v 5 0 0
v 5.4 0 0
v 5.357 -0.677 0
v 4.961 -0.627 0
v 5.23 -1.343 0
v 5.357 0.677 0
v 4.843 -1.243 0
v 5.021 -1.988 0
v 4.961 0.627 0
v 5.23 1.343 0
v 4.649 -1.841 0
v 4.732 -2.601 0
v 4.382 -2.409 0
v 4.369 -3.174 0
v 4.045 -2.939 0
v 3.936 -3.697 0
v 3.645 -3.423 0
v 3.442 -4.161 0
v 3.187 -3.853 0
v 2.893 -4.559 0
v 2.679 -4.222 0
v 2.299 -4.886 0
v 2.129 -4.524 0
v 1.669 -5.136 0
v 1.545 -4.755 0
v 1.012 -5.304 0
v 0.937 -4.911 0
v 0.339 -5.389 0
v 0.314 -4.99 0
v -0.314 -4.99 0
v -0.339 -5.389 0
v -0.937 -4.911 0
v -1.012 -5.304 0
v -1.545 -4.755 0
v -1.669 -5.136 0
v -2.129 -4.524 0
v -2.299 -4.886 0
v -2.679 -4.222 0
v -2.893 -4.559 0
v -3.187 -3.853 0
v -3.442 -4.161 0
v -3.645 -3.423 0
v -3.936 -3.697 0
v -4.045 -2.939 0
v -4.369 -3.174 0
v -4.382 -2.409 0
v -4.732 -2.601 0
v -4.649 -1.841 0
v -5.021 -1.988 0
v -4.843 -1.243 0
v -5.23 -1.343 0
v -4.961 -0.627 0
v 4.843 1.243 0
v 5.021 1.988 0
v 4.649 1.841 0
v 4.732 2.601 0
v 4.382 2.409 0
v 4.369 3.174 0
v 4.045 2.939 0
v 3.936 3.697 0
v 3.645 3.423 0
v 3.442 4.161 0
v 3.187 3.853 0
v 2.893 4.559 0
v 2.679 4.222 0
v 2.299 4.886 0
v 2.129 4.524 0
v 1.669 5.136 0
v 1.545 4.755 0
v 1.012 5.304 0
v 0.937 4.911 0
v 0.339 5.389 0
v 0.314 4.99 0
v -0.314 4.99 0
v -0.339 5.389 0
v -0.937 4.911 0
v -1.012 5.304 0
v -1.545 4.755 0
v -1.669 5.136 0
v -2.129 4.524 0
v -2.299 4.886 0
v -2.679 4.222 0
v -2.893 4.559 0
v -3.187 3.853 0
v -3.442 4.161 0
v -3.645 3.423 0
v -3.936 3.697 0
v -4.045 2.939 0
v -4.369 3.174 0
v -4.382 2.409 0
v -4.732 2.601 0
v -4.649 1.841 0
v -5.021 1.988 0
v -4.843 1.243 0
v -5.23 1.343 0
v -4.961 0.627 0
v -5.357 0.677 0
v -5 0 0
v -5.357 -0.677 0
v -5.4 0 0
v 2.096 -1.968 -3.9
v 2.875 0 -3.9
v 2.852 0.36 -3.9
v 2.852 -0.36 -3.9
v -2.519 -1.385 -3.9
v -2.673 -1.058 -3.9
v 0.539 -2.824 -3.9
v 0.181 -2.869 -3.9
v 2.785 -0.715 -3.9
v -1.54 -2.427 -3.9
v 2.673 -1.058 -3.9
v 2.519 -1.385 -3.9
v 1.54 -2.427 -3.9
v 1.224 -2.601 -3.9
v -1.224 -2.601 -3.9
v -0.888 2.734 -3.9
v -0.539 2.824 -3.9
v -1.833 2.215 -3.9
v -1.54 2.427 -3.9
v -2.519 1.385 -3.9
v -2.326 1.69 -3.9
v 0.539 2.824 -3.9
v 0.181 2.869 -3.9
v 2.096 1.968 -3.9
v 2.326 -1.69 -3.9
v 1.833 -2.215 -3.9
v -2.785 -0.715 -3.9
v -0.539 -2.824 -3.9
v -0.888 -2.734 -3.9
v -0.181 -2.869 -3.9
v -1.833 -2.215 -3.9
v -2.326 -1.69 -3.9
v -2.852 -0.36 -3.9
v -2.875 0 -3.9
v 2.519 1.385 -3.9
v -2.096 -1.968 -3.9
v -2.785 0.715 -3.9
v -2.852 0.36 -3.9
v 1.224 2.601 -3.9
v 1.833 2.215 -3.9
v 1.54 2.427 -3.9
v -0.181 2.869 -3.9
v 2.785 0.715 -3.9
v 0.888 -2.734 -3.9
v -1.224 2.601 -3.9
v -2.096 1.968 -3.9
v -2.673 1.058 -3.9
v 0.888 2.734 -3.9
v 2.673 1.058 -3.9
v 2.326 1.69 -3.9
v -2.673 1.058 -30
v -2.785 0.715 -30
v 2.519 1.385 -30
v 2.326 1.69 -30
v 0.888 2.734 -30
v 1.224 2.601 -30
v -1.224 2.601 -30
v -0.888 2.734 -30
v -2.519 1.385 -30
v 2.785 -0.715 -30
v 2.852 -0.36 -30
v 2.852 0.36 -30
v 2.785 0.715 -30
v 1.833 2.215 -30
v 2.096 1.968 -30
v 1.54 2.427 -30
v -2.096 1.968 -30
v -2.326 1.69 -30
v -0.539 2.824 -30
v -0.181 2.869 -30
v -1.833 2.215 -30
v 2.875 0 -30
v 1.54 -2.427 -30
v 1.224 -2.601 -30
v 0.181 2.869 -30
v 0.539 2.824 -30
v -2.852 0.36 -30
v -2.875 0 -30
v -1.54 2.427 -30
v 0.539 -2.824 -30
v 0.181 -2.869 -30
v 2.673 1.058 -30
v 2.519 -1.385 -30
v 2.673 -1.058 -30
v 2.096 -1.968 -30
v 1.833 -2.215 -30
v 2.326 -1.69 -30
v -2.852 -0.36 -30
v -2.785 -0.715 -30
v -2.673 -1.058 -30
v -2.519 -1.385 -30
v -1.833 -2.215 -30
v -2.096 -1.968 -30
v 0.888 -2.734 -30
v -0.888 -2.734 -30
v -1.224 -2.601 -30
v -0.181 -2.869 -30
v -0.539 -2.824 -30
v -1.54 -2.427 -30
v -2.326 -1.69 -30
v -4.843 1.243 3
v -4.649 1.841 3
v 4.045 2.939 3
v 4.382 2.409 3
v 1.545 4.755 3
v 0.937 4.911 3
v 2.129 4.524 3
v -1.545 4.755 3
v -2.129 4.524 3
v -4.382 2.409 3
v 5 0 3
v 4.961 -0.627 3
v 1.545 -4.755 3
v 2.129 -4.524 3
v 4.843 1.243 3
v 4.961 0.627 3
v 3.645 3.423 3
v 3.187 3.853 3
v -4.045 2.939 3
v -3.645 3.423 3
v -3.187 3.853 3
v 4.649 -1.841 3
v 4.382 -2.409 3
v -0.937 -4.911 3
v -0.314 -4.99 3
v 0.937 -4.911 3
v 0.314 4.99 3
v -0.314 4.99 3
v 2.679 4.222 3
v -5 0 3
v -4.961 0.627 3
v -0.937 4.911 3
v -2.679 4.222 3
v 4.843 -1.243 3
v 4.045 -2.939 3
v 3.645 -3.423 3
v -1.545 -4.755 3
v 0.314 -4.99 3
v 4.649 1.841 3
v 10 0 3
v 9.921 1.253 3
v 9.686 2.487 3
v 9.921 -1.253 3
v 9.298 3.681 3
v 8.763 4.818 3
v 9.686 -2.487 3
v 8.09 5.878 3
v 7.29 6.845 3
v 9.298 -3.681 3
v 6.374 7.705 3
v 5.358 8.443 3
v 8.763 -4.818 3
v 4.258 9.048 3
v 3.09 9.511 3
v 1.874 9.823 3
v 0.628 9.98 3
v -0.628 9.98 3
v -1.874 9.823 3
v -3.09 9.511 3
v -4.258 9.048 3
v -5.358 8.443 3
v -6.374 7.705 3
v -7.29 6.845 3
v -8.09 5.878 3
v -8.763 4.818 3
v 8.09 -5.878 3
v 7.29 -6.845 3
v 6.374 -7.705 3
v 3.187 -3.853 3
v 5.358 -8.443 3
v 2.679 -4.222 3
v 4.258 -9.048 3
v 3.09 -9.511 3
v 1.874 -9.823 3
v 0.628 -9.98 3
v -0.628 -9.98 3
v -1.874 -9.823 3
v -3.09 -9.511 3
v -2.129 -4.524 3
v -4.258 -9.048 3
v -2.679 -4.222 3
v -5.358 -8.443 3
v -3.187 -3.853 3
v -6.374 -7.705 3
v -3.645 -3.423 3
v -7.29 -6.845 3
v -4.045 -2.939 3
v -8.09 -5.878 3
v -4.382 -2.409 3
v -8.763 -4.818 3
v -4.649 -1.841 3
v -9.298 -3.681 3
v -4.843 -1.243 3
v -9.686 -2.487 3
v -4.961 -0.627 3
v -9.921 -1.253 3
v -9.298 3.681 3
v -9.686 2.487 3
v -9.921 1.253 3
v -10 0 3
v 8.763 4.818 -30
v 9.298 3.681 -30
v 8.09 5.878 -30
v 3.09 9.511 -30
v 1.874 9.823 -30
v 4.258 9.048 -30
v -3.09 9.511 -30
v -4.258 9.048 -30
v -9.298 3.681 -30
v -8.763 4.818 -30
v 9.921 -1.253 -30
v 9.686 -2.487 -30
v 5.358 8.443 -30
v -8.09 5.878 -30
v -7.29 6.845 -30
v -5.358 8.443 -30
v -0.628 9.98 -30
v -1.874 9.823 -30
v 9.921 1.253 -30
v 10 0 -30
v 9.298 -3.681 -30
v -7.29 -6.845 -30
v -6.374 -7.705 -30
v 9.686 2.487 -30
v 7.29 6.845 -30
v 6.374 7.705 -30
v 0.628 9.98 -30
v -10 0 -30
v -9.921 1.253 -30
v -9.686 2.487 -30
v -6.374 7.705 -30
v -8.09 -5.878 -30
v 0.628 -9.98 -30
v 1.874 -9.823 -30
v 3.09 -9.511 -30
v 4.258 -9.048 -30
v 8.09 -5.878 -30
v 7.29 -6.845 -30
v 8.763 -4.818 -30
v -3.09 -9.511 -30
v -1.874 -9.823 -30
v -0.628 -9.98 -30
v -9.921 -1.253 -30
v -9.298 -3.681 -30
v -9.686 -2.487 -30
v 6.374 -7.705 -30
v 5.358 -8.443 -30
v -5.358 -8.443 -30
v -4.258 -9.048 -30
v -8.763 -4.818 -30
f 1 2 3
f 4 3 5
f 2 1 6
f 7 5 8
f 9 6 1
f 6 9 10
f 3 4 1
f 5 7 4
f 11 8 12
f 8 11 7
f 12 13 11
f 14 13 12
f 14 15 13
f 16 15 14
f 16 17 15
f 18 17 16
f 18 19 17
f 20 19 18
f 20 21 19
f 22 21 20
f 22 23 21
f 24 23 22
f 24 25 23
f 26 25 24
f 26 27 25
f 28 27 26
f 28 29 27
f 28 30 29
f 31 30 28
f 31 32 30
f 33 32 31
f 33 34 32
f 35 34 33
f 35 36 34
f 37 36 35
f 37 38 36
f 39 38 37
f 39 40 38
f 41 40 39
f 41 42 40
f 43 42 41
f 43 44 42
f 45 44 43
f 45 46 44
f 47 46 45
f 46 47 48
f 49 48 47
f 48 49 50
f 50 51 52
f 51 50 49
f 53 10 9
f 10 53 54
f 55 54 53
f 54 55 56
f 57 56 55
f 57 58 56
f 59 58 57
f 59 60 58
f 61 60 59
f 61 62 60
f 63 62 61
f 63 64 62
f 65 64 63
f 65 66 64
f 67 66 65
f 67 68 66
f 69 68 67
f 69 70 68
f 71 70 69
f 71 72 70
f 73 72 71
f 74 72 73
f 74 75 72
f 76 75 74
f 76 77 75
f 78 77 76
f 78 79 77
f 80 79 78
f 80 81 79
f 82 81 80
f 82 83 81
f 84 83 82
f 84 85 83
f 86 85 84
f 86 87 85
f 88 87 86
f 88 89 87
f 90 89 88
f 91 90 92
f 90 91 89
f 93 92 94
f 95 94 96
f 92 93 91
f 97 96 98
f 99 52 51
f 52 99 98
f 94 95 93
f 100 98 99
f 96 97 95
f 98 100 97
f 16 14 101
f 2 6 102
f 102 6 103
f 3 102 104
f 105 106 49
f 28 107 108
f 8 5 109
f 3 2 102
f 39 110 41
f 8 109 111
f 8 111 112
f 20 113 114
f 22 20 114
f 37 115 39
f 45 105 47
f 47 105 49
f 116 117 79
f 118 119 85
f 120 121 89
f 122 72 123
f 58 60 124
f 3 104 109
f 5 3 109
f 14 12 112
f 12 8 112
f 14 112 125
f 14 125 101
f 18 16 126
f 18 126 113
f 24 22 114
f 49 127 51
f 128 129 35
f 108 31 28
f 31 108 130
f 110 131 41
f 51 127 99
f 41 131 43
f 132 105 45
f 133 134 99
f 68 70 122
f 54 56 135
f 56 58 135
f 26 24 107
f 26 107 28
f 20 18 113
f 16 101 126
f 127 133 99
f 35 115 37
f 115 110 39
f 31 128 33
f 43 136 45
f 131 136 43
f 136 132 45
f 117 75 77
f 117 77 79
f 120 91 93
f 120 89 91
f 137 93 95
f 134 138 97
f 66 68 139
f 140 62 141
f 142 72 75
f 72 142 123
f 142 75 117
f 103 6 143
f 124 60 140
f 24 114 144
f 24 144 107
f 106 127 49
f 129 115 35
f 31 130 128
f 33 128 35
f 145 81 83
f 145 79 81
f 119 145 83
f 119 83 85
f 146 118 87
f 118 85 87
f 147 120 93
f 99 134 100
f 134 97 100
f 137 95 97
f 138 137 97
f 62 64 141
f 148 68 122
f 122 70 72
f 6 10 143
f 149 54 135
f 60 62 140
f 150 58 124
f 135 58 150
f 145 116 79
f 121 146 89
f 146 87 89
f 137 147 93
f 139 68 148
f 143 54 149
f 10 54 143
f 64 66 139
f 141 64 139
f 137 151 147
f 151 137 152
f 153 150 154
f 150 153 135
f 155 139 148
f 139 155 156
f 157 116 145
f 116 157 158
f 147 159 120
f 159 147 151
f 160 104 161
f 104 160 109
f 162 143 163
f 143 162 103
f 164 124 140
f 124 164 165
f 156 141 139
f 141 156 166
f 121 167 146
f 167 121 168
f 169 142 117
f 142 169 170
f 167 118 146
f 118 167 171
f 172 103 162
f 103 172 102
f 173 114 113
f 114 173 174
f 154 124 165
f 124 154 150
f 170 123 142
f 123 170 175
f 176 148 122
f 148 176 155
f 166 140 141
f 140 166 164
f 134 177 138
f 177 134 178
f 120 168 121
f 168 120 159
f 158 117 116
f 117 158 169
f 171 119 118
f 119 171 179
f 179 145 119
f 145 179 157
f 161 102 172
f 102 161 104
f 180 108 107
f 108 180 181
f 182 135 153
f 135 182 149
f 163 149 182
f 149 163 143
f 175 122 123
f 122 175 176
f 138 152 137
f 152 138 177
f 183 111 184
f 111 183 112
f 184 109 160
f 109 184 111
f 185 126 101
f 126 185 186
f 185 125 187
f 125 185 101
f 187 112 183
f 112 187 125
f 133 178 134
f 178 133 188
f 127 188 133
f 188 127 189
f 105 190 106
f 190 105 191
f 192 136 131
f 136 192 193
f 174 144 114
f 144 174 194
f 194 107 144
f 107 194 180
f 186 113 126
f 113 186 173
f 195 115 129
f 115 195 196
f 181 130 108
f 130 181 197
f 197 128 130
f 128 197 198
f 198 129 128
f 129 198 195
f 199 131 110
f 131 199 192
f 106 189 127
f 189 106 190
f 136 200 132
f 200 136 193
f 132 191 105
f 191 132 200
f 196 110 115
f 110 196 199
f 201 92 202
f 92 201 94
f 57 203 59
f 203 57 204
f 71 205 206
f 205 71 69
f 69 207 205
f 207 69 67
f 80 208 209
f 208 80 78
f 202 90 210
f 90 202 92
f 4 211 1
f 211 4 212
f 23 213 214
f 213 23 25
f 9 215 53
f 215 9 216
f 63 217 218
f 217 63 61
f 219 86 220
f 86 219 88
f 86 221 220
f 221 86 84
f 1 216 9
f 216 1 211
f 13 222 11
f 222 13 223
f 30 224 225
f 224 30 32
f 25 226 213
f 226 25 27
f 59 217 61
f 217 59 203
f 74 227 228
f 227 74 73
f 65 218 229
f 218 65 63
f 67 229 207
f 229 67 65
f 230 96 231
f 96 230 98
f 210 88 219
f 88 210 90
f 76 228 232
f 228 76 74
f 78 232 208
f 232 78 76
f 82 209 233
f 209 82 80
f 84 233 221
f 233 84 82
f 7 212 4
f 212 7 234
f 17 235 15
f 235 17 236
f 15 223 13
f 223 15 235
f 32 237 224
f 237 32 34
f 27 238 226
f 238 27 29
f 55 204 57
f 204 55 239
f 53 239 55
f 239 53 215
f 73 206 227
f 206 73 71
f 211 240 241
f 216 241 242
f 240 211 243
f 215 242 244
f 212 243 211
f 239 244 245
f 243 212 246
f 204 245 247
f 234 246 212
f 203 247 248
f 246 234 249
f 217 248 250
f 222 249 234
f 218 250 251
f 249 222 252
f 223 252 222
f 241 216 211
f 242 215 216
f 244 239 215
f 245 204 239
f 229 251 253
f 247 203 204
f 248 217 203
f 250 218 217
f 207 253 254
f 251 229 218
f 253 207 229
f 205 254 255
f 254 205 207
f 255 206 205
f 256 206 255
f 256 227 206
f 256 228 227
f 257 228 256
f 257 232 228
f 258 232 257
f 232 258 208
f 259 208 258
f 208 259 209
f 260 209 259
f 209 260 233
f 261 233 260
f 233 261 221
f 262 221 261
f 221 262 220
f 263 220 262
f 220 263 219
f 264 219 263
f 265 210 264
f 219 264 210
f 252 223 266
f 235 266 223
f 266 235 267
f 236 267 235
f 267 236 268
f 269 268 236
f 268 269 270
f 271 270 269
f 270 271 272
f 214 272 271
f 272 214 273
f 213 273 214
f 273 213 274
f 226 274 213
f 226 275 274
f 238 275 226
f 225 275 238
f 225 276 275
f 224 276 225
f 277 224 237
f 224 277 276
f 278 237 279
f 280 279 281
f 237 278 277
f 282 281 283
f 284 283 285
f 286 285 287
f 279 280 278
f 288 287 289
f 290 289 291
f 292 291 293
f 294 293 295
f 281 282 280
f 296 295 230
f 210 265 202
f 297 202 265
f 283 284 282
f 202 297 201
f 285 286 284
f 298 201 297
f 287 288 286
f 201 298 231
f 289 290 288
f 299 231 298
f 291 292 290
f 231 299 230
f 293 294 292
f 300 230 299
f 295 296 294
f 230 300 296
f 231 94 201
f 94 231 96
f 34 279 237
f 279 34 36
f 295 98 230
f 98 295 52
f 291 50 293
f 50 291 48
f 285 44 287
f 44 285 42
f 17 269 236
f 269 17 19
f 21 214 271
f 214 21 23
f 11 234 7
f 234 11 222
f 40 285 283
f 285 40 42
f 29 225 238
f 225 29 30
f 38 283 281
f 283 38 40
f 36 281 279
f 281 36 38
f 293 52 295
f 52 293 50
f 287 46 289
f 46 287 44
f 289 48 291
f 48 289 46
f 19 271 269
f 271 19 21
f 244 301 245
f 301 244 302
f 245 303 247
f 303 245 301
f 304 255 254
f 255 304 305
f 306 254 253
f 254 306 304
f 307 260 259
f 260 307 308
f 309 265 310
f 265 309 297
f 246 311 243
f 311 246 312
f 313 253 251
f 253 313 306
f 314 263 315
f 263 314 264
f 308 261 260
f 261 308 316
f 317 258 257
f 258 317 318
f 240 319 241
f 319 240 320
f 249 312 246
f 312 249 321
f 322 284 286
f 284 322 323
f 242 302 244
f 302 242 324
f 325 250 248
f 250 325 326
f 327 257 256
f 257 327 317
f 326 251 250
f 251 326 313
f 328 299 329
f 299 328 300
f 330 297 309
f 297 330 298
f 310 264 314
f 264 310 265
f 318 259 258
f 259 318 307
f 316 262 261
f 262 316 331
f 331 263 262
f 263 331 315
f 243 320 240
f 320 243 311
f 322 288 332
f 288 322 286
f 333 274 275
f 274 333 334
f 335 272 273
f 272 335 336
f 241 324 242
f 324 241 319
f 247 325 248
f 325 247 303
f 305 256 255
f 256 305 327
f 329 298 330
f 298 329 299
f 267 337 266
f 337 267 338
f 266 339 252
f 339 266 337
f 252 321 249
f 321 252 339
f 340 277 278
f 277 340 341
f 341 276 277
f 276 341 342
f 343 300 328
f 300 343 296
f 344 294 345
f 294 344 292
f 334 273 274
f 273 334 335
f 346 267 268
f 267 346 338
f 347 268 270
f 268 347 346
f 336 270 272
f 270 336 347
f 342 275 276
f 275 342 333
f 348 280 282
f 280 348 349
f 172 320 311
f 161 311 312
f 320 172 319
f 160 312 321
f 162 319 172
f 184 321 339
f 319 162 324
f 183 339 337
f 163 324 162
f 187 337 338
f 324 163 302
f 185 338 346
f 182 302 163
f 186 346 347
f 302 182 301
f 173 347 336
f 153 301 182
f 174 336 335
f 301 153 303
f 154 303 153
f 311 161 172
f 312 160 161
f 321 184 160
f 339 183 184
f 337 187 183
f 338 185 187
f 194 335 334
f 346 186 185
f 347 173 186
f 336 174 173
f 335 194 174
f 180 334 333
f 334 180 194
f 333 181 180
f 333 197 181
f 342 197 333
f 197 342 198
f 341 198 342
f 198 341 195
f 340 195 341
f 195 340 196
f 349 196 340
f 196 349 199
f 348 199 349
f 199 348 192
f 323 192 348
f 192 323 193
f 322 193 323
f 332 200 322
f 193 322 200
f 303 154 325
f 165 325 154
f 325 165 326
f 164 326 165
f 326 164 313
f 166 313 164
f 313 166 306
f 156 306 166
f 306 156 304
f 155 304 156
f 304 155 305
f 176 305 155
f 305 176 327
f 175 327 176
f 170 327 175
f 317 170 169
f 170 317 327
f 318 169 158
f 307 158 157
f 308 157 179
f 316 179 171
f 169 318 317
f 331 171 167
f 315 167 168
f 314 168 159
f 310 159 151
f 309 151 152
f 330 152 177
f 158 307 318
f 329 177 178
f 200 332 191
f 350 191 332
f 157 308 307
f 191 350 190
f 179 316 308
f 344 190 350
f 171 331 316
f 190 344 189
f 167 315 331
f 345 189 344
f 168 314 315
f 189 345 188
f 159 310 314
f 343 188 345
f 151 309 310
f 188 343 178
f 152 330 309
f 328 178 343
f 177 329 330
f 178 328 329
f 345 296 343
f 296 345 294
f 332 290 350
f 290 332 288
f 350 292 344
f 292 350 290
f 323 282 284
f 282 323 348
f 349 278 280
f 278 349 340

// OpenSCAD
$fn = 50;

difference() {
	union() {
		translate(v = [0, 0, -30.0]) {
			cylinder(h = 33, r = 10.0);
		}
	}
	union() {
		translate(v = [0, 0, 0]) {
			rotate(a = [0, 0, 0]) {
				difference() {
					union() {
						translate(v = [0, 0, -33.0]) {
							cylinder(h = 33, r = 2.6);
						}
						translate(v = [0, 0, -3.9]) {
							cylinder(h = 3.9, r1 = 2.875, r2 = 5.4);
						}
						translate(v = [0, 0, -33.0]) {
							cylinder(h = 33, r = 2.875);
						}
						translate(v = [0, 0, -33.0]) {
							cylinder(h = 33, r = 2.6);
						}
					}
					union();
				}
			}
		}
		#cylinder(h = 3, r = 5.0);
	}
}
